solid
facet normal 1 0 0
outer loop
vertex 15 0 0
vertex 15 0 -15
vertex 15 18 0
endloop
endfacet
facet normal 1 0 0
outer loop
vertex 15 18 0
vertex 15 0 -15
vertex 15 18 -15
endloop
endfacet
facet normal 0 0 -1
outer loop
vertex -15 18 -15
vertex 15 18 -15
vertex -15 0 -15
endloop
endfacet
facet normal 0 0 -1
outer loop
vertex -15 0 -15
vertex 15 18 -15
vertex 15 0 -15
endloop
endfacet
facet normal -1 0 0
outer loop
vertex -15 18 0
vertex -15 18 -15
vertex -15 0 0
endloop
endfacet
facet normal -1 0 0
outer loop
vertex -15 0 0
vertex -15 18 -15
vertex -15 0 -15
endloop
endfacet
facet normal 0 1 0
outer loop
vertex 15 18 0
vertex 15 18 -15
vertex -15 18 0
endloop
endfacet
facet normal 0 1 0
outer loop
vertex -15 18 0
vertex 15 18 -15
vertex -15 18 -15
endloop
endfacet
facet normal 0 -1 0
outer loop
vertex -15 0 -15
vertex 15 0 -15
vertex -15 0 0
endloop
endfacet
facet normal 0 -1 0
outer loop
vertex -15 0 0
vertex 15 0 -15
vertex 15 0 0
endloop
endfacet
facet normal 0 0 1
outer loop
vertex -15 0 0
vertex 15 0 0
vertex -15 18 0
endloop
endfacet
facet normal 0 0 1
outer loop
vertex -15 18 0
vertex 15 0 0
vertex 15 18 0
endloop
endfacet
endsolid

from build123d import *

# Parameters (mm, degrees)
SKETCH1_W           = 30
SKETCH1_H           = 30
BOSS_EXTRUDE1_DEPTH = 18
SKETCH2_W           = 15
SKETCH2_H           = 15
CUT_EXTRUDE1_DEPTH  = 28.820855486
SKETCH3_W           = 15
SKETCH3_H           = 15
CUT_EXTRUDE2_DEPTH  = 28.820855486


with BuildPart() as part:
    # Sketch1 → Boss-Extrude1 (new body)
    with BuildSketch(Plane(origin=(0, 0, 0), x_dir=(1, 0, 0), z_dir=(0, 1, 0))):
        Rectangle(SKETCH1_W, SKETCH1_H)
    extrude(amount=BOSS_EXTRUDE1_DEPTH)

    # Sketch2 → Cut-Extrude1 (cut, through all)
    with BuildSketch(Plane(origin=(0, 18, 0), x_dir=(1, 0, 0), z_dir=(0, 1, 0))):
        with Locations((7.5, -7.5)):
            Rectangle(SKETCH2_W, SKETCH2_H)
    extrude(amount=-CUT_EXTRUDE1_DEPTH, mode=Mode.SUBTRACT)

    # Sketch3 → Cut-Extrude2 (cut, through all)
    with BuildSketch(Plane(origin=(0, 18, 0), x_dir=(1, 0, 0), z_dir=(0, 1, 0))):
        with Locations((-7.5, -7.5)):
            Rectangle(SKETCH3_W, SKETCH3_H)
    extrude(amount=-CUT_EXTRUDE2_DEPTH, mode=Mode.SUBTRACT)


solid = part.part
